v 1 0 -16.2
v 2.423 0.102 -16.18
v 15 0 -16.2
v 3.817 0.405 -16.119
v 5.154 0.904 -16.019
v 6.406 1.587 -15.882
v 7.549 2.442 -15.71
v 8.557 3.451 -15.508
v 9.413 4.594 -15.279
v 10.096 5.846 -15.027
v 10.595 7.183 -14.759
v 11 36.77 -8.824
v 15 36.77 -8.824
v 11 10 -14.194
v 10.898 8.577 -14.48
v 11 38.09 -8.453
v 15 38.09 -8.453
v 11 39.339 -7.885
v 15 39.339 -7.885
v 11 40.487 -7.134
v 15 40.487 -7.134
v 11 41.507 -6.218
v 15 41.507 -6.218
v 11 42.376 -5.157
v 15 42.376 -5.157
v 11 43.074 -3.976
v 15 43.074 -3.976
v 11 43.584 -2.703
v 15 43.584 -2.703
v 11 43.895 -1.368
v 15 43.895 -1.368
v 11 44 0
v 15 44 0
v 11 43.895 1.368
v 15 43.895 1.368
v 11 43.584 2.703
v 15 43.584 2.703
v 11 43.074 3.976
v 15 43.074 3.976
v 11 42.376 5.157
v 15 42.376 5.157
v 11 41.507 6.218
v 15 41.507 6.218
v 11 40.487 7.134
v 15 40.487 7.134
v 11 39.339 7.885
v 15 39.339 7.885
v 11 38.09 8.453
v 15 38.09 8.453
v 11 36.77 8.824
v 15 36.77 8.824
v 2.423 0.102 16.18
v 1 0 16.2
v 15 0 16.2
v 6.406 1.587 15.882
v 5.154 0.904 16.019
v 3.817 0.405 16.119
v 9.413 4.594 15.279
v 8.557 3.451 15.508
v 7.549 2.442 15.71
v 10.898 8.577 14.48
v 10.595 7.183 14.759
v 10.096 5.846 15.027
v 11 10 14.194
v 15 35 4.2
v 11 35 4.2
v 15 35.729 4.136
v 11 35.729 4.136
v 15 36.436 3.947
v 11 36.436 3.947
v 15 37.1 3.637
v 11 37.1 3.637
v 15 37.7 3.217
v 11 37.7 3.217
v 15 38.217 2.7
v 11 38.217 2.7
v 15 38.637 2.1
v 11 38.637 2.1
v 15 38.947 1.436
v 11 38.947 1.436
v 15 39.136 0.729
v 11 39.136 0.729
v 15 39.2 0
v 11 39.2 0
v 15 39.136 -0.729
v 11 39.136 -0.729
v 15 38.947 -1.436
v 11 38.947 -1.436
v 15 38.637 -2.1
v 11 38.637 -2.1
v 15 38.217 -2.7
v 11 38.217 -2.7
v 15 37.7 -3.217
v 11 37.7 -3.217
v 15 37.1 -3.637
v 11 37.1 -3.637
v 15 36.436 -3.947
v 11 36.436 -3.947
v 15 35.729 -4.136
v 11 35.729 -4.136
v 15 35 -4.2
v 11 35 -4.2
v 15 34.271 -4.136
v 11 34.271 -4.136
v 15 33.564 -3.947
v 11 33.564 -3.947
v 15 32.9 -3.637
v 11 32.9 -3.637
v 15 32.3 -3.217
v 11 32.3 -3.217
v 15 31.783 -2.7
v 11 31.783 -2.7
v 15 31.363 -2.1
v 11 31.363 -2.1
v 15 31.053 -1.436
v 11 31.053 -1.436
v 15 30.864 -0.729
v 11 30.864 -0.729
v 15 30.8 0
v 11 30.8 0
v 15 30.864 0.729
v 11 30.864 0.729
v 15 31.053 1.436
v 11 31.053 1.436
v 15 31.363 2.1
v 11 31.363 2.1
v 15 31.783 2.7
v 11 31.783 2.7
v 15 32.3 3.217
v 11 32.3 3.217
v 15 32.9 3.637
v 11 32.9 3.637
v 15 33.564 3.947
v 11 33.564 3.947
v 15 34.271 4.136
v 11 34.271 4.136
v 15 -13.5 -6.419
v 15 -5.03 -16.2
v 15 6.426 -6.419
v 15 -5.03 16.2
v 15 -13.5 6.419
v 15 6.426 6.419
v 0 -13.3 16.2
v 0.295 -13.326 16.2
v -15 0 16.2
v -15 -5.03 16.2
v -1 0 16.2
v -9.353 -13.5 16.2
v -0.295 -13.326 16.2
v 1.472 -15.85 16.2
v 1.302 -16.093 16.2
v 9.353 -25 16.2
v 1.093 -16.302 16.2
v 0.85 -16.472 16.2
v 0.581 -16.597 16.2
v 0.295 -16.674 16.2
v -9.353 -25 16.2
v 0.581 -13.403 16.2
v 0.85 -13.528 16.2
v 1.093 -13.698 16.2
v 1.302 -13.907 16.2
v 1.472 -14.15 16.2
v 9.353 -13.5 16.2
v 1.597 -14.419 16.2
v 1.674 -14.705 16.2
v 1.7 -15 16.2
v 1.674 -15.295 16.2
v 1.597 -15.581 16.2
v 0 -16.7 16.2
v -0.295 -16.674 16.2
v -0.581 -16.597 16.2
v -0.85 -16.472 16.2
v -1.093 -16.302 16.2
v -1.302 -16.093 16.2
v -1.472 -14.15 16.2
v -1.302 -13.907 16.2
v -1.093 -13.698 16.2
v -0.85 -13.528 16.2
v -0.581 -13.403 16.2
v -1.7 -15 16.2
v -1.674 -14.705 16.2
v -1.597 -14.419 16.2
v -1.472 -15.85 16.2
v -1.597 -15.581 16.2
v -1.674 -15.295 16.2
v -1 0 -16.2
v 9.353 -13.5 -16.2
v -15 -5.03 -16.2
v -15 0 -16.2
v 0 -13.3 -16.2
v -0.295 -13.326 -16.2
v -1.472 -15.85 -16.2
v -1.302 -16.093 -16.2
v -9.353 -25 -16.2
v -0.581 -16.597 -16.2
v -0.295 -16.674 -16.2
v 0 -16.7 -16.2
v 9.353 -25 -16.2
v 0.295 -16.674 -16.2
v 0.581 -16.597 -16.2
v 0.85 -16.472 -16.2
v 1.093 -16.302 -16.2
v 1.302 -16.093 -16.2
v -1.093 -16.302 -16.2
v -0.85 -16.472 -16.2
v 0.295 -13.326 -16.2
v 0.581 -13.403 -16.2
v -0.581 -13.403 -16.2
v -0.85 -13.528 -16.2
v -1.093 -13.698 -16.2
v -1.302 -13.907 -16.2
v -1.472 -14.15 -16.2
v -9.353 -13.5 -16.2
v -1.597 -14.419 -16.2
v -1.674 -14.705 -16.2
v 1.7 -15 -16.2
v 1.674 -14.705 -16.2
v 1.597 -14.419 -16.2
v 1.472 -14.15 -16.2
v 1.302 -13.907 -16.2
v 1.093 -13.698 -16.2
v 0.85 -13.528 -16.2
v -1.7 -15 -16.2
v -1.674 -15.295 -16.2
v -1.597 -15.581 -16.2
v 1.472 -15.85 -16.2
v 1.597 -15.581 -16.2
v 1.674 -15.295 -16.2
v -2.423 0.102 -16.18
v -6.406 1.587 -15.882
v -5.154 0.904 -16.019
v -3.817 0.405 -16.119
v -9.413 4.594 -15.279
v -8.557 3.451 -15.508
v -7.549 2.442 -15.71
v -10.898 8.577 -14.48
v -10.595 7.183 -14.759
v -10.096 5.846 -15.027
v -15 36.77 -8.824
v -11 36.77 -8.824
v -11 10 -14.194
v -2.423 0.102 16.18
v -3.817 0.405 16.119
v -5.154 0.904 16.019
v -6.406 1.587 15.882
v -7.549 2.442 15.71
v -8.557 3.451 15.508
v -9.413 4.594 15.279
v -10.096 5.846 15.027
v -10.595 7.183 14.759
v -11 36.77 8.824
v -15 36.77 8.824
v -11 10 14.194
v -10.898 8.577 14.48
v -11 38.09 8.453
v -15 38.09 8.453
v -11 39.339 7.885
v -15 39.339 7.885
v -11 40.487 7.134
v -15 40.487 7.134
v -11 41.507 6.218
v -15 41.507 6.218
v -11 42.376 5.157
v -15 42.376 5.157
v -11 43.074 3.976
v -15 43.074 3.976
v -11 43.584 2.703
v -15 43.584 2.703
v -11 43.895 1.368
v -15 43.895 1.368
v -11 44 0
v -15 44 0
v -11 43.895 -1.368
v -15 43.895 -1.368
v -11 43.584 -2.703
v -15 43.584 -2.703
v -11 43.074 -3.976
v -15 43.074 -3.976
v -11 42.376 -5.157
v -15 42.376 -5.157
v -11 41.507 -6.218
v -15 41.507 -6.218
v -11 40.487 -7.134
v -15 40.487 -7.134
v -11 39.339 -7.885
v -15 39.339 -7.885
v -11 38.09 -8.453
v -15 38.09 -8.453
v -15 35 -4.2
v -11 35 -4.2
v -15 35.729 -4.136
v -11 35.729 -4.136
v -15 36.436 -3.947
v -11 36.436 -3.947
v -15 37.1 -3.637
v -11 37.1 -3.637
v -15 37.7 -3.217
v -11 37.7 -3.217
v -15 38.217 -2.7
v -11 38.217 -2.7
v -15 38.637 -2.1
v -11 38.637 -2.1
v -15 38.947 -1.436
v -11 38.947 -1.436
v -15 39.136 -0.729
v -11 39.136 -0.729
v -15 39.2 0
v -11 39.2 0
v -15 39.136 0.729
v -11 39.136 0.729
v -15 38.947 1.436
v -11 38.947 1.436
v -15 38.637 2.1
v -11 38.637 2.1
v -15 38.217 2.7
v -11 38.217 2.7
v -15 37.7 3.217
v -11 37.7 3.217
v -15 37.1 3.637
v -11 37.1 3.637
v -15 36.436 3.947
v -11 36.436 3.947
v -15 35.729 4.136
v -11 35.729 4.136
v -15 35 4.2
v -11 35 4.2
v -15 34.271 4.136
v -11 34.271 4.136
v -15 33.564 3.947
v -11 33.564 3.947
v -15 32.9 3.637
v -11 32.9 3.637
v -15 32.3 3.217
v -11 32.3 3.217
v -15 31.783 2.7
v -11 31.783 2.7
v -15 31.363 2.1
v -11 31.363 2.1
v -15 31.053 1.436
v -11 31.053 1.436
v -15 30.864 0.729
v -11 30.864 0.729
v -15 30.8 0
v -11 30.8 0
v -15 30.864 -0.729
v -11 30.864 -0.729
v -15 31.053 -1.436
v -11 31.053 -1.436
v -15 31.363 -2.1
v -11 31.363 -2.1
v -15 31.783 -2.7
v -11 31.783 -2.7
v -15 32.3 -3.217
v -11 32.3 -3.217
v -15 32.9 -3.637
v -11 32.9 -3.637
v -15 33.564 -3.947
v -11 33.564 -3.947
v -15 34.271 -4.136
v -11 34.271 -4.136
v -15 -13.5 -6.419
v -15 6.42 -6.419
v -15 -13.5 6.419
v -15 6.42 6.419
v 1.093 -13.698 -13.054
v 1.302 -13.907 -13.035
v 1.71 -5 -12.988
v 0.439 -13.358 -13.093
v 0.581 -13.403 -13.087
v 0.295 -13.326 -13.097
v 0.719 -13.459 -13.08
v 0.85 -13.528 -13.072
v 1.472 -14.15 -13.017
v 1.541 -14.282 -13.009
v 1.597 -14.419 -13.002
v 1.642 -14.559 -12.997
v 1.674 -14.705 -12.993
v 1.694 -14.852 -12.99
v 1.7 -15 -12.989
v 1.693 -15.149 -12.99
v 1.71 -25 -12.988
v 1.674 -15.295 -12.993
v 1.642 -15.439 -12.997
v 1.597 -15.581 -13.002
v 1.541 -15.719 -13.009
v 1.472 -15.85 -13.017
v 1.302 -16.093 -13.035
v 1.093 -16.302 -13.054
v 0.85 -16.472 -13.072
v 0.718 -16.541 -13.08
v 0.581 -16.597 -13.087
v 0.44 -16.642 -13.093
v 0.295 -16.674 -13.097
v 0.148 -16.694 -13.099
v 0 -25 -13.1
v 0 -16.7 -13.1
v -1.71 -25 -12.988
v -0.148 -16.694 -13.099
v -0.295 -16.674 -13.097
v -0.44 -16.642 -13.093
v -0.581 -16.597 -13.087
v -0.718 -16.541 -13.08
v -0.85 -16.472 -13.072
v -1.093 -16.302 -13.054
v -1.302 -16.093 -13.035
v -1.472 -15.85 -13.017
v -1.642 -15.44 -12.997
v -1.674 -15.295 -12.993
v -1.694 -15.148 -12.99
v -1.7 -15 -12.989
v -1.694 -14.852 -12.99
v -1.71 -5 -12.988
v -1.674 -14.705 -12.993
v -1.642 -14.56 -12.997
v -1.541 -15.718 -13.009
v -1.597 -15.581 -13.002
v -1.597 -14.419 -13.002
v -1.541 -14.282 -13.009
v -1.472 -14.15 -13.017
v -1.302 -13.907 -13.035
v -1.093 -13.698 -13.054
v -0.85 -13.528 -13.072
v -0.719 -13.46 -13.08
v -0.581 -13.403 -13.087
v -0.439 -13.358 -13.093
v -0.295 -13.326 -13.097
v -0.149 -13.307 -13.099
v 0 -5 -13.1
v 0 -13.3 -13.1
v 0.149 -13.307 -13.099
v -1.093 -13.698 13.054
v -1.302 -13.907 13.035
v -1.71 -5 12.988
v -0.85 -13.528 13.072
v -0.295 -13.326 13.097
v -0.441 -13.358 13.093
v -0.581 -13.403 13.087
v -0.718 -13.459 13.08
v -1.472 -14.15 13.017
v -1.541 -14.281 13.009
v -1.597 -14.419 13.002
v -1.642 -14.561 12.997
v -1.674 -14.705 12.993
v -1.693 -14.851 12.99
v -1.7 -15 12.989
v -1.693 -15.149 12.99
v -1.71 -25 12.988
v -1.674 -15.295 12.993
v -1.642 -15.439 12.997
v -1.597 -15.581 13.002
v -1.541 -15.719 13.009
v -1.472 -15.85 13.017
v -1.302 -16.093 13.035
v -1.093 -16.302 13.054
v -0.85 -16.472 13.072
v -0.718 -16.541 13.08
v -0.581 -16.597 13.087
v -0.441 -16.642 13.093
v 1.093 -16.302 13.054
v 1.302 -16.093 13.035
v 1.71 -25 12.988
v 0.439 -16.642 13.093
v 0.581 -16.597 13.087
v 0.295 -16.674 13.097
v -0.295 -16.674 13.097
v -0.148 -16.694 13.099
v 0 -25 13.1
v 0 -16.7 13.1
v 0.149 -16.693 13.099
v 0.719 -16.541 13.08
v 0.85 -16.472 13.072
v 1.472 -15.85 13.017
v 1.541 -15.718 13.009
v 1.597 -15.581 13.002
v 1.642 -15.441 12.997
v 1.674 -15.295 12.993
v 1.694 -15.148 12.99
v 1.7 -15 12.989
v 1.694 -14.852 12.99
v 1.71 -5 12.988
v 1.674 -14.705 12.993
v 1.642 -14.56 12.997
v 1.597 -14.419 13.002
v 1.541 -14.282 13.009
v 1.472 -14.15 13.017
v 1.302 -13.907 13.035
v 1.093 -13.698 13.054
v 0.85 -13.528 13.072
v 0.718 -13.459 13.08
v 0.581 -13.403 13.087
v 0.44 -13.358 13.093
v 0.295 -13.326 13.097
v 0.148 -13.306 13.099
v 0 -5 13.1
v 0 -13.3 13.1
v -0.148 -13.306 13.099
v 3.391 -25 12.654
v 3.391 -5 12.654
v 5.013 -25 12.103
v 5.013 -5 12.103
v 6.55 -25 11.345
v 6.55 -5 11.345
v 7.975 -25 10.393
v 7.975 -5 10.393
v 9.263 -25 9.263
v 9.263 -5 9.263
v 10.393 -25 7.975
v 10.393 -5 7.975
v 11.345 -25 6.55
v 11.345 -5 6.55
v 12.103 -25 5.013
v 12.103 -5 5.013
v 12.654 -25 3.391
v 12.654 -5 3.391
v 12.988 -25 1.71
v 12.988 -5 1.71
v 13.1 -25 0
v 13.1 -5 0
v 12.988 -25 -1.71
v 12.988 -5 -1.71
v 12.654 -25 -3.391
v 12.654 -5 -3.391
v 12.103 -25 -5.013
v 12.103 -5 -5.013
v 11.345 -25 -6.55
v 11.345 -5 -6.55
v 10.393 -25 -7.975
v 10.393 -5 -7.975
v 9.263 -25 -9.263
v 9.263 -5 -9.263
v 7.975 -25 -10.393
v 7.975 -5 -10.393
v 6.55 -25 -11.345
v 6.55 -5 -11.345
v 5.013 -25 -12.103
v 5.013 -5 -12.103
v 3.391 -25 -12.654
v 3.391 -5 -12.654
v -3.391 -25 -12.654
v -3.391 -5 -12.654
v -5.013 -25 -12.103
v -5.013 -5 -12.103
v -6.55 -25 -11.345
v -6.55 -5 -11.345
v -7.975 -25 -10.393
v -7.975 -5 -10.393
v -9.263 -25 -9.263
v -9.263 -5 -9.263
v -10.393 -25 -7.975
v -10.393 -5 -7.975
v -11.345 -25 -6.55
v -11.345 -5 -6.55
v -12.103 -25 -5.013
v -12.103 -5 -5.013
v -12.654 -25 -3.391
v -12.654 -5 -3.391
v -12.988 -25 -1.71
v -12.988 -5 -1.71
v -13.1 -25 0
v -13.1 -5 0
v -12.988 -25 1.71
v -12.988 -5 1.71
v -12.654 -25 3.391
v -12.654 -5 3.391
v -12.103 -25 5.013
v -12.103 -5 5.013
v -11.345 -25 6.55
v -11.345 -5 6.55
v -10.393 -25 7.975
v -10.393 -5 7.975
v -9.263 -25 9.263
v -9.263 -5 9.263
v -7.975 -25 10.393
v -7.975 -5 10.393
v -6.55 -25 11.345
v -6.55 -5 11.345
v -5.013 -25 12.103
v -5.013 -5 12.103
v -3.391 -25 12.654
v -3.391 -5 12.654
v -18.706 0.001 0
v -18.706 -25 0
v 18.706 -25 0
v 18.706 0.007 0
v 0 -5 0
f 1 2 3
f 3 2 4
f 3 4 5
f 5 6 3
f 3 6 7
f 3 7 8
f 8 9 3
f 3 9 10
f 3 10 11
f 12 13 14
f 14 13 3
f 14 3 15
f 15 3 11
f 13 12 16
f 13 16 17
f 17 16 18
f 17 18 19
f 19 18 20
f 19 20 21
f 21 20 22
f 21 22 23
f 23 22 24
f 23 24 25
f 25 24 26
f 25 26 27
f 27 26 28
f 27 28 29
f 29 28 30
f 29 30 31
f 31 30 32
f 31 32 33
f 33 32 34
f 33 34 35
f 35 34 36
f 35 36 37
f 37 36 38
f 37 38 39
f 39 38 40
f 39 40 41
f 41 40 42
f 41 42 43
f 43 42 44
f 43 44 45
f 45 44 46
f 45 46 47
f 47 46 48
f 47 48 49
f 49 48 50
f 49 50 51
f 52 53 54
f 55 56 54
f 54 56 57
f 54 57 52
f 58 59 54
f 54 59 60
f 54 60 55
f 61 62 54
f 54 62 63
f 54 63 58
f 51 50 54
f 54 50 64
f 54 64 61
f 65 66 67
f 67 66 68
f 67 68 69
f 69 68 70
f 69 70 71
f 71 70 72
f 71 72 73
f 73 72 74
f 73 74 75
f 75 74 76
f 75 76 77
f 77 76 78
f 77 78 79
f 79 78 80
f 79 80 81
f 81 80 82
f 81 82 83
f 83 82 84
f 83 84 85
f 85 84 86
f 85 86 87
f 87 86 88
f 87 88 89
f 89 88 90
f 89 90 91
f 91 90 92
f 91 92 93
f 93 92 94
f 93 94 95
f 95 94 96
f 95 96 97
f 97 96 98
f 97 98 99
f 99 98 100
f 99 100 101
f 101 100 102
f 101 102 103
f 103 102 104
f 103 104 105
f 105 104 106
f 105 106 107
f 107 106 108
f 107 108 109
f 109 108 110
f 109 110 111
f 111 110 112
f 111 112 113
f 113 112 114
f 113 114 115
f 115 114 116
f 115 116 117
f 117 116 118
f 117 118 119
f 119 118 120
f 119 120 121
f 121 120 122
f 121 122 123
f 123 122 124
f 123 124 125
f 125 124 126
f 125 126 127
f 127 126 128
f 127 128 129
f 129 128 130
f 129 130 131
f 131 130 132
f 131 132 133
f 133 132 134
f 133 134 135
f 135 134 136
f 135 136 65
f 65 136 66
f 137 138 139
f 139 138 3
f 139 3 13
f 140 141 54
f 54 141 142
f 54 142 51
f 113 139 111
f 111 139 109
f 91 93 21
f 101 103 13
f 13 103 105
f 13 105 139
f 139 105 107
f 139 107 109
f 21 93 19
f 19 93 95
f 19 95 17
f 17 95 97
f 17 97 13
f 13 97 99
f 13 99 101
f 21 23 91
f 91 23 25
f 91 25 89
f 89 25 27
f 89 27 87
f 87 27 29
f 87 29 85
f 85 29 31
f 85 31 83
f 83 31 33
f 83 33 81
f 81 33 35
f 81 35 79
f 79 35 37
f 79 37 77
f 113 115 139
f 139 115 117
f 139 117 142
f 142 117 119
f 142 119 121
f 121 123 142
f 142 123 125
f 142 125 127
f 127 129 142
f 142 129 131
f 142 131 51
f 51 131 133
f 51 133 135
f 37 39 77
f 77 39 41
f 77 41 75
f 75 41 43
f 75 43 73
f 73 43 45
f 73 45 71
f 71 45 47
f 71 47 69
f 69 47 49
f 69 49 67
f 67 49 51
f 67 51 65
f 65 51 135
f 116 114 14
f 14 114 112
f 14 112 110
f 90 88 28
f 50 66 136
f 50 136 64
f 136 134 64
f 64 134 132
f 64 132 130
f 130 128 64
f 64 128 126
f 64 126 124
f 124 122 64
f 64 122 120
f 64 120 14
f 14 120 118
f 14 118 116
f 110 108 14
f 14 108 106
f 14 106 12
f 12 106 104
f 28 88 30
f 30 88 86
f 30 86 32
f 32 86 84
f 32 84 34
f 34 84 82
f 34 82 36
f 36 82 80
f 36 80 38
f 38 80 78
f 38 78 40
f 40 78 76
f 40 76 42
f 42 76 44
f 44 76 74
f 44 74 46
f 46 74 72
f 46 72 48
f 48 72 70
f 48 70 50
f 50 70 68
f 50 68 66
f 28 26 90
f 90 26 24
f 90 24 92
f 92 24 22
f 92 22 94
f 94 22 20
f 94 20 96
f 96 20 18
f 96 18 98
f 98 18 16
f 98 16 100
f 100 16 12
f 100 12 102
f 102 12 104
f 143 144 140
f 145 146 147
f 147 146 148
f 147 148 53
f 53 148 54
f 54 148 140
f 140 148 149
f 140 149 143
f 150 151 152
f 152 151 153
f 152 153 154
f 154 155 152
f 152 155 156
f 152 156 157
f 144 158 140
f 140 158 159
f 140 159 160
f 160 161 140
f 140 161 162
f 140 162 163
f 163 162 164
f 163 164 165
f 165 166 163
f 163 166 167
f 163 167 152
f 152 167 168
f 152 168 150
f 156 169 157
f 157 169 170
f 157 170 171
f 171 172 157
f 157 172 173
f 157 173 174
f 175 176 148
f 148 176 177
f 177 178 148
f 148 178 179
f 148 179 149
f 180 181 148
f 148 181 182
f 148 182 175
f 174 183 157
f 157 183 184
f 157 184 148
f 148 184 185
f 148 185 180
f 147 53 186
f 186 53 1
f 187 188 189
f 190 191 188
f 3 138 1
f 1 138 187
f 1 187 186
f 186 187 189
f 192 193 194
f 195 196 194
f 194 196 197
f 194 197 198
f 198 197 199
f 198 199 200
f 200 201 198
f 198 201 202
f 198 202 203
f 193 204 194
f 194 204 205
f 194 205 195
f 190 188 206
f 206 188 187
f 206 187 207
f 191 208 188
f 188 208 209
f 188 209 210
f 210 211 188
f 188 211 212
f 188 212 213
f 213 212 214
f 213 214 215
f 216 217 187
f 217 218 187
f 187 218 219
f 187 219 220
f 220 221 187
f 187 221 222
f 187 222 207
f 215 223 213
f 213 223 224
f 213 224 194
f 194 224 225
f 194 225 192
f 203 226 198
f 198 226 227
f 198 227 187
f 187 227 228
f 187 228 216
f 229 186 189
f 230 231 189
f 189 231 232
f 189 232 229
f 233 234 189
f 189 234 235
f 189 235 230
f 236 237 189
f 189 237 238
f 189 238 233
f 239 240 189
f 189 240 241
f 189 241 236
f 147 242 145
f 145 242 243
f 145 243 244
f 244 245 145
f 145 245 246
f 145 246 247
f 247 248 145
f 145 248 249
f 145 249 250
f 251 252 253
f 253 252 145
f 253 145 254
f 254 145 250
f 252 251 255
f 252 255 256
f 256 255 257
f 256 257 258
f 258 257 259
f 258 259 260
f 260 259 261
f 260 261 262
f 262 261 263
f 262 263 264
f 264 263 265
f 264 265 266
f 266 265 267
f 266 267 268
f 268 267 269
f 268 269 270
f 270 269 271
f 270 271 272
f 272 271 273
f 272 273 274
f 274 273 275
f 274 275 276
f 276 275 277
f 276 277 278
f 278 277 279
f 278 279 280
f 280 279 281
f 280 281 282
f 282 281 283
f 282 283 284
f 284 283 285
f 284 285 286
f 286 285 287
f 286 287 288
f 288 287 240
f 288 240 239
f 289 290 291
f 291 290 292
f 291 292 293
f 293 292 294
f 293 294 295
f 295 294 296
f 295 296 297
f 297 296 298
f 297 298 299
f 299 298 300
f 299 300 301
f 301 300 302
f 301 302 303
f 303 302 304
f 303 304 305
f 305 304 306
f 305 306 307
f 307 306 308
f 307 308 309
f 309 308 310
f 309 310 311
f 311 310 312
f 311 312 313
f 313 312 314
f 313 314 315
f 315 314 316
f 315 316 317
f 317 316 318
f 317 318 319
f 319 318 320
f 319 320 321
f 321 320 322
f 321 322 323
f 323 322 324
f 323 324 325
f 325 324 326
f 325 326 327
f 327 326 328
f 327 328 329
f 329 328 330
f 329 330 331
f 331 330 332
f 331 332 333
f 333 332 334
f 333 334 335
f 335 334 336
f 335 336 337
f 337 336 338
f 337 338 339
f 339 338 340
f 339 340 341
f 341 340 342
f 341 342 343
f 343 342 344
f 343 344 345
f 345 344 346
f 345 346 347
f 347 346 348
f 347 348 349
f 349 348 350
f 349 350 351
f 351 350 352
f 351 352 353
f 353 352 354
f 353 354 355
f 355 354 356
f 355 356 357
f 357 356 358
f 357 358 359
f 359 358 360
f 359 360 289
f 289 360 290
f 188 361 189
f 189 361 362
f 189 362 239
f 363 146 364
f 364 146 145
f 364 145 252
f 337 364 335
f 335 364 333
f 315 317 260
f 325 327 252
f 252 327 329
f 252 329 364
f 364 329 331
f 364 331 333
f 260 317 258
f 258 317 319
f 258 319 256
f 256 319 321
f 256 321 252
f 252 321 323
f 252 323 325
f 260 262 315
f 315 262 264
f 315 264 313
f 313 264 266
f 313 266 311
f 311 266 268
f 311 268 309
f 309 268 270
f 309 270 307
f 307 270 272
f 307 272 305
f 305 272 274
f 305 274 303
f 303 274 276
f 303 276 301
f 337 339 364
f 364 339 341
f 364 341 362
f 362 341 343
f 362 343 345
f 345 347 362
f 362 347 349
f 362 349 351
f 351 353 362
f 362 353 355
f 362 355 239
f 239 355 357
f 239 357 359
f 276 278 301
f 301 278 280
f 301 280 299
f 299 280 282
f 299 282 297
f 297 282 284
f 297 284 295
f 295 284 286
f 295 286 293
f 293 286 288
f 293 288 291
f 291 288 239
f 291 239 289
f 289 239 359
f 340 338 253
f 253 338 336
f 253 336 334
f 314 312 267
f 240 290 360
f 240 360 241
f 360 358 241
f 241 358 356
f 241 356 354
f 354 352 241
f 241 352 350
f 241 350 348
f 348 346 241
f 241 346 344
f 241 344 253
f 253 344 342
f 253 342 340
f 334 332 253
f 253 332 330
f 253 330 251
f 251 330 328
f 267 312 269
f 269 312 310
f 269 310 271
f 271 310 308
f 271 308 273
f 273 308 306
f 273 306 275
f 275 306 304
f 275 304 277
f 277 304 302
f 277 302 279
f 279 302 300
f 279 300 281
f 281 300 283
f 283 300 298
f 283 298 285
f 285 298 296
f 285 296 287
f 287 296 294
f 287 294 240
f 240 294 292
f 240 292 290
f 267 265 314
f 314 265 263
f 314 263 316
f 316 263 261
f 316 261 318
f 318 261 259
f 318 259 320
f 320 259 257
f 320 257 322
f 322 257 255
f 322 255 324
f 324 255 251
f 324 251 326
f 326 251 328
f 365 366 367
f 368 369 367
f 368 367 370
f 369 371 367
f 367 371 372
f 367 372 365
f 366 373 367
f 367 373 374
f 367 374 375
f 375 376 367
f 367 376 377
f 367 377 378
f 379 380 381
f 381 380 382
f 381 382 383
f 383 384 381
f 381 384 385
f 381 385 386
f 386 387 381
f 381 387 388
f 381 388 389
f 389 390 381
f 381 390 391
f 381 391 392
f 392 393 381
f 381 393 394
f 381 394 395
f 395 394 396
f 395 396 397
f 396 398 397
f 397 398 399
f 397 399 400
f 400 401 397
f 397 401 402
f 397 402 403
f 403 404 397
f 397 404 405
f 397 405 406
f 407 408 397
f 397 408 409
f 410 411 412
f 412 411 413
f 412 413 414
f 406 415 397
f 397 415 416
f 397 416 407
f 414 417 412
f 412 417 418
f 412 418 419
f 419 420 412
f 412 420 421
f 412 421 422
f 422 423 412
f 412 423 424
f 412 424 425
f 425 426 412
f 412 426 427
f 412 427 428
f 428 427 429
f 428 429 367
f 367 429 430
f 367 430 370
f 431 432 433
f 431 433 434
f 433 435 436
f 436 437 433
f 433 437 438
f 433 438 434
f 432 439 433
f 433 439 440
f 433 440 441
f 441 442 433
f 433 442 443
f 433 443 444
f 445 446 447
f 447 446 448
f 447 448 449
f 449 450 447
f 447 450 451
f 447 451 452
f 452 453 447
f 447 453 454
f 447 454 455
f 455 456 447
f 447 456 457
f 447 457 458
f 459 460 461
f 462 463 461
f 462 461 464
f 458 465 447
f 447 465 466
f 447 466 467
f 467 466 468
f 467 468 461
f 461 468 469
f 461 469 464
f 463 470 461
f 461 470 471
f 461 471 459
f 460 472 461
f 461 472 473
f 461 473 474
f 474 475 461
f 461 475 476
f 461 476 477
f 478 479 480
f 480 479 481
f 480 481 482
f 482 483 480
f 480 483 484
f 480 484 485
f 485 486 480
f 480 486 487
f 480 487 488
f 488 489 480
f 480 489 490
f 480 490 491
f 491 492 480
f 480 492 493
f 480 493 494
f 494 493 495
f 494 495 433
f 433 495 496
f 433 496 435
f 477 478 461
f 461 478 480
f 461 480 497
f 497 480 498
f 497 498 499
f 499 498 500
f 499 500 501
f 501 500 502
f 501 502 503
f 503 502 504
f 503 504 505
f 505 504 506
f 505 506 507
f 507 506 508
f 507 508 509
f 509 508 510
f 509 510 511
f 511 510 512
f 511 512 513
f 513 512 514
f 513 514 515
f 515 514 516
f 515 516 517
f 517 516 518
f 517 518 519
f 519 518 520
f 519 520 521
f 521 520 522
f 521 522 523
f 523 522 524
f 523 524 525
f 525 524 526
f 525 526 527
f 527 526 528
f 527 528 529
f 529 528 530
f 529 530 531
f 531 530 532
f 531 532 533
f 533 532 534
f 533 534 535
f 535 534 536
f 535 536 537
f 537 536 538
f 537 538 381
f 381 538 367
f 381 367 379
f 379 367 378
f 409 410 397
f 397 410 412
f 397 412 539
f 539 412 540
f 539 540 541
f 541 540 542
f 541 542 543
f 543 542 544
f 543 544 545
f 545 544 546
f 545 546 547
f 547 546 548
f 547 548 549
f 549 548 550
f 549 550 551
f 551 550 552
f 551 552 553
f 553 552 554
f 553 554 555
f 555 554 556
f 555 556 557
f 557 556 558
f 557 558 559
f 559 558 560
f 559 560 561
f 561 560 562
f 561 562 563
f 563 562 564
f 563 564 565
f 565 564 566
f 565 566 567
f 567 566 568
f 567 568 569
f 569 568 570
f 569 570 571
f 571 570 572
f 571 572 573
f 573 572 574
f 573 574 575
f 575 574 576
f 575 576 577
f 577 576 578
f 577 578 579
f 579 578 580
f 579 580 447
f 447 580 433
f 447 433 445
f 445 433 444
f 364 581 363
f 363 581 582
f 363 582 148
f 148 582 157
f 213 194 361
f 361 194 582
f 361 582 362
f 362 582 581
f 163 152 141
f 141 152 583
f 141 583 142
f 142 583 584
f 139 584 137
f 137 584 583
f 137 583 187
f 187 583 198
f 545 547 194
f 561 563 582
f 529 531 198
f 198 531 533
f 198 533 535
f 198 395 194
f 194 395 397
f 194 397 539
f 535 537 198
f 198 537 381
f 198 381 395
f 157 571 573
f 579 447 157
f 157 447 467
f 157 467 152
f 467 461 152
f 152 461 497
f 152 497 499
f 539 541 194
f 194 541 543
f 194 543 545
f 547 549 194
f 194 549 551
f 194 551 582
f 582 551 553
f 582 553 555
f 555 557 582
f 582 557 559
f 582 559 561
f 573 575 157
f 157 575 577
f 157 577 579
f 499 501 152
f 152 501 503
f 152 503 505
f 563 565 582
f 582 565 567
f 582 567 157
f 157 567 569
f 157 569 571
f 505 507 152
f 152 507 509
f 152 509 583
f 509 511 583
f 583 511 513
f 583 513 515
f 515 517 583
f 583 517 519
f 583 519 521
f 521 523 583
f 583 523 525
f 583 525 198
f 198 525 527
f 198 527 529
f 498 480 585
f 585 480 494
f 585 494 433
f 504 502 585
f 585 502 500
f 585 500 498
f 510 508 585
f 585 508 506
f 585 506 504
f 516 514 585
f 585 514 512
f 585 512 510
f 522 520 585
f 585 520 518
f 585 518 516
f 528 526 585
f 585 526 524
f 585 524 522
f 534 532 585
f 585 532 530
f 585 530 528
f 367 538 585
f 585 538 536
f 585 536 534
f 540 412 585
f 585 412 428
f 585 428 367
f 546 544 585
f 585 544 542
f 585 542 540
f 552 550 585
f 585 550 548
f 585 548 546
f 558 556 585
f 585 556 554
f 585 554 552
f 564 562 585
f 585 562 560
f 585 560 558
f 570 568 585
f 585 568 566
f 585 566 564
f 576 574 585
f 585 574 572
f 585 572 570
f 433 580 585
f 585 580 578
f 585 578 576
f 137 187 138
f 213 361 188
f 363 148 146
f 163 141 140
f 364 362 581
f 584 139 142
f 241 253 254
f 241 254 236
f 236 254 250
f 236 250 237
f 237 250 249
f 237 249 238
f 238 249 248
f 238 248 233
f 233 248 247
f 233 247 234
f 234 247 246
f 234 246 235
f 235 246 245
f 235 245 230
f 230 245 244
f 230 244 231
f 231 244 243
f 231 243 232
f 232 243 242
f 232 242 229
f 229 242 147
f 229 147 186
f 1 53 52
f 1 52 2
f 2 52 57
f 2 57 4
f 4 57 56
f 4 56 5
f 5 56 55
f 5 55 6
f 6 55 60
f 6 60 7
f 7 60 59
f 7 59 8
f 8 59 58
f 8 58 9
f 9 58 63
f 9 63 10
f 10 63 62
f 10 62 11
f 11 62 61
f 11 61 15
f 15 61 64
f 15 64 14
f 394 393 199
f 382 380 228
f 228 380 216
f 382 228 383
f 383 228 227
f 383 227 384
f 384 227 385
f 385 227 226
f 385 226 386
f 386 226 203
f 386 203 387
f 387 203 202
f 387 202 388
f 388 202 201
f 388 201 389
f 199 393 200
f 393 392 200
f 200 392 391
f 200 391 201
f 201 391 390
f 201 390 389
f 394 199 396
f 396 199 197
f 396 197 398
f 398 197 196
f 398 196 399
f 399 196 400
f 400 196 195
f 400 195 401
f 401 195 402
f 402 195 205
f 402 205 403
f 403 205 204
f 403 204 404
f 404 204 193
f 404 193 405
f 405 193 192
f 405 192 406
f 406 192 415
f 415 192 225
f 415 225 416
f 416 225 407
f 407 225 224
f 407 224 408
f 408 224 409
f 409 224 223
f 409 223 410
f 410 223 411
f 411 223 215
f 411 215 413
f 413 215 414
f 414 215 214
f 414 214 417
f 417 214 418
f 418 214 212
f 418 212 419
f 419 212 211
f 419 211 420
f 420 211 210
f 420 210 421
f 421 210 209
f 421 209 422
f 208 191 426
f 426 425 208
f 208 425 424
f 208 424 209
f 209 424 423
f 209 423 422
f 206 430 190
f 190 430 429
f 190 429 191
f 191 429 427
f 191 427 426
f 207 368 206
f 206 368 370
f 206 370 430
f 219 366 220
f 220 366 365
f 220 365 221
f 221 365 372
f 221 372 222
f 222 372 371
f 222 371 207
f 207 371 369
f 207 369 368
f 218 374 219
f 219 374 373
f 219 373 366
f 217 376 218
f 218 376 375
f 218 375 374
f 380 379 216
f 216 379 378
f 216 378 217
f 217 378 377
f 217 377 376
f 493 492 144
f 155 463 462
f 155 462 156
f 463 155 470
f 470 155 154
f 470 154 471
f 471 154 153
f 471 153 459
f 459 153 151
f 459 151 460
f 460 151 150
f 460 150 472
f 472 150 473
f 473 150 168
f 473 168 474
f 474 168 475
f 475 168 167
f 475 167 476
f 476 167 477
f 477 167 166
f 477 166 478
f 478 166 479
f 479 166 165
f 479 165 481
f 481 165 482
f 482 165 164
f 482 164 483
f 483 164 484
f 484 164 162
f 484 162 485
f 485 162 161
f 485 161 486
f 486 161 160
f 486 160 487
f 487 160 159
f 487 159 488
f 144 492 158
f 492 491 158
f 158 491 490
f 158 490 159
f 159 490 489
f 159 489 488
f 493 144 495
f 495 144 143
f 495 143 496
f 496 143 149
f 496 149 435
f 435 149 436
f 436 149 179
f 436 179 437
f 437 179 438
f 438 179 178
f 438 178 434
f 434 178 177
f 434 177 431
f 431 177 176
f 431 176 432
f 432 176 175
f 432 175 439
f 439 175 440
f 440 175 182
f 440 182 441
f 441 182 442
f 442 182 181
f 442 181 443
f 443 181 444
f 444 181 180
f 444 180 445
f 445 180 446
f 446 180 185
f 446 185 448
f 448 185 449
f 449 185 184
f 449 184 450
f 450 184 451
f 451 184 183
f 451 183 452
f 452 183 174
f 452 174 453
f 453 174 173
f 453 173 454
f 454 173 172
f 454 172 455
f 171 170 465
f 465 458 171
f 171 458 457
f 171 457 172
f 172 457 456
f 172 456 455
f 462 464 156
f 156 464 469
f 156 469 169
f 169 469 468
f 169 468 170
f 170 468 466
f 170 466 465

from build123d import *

# Parameters (mm, degrees)
SALIENTE_EXTRUIR1_START = 11
CROQUIS1_R              = 4.2
SALIENTE_EXTRUIR1_DEPTH = 4
SALIENTE_EXTRUIR2_START = -11
CROQUIS1_3_R            = 4.2
SALIENTE_EXTRUIR2_DEPTH = 4
CROQUIS2_R              = 13.1
SALIENTE_EXTRUIR3_DEPTH = 5
CROQUIS2_3_R            = 13.1
SALIENTE_EXTRUIR4_DEPTH = 25
CHAFL_N1_SIZE           = 8.5
CHAFL_N1_SIZE_2         = 4.907477288
CHAFL_N3_SIZE           = 6.42
CHAFL_N3_SIZE_2         = 3.706588728
CHAFL_N4_SIZE           = 6.425908496
CHAFL_N4_SIZE_2         = 3.71
REDONDEO2_R             = 10
CORTAR_EXTRUIR1_REACH   = 59.755
CROQUIS3_R              = 1.7


with BuildPart() as part:
    # Croquis1 → Saliente-Extruir1 (new body)
    with BuildSketch(Plane(origin=(0, 0, 0), x_dir=(0, 0, -1), z_dir=(1, 0, 0)).offset(SALIENTE_EXTRUIR1_START)):
        with BuildLine():
            Line((-16.2, 0), (16.2, 0))
            Line((16.2, 0), (8.824220118, 36.770067598))
            ThreePointArc((8.824220118, 36.770067598), (0, 44), (-8.824220118, 36.770067598))
            Line((-8.824220118, 36.770067598), (-16.2, 0))
        make_face()
        with Locations((0, 35)):
            Circle(CROQUIS1_R, mode=Mode.SUBTRACT)
    extrude(amount=SALIENTE_EXTRUIR1_DEPTH)



with BuildPart() as body_2:
    # Croquis1<3> → Saliente-Extruir2 (new body)
    with BuildSketch(Plane(origin=(0, 0, 0), x_dir=(0, 0, -1), z_dir=(1, 0, 0)).offset(SALIENTE_EXTRUIR2_START)):
        with BuildLine():
            Line((-16.2, 0), (16.2, 0))
            Line((16.2, 0), (8.824220118, 36.770067598))
            ThreePointArc((8.824220118, 36.770067598), (0, 44), (-8.824220118, 36.770067598))
            Line((-8.824220118, 36.770067598), (-16.2, 0))
        make_face()
        with Locations((0, 35)):
            Circle(CROQUIS1_3_R, mode=Mode.SUBTRACT)
    extrude(amount=-SALIENTE_EXTRUIR2_DEPTH)


with BuildPart() as part_1:
    add(part.part)

    add(body_2.part)  # Saliente-Extruir3 merges body 2
    # Croquis2 → Saliente-Extruir3 (add)
    with BuildSketch(Plane(origin=(0, 0, 0), x_dir=(1, 0, 0), z_dir=(0, 1, 0))):
        Polygon((-9.353074361, -16.2), (-15, -6.419237886), (-15, -16.2), align=None)
        Polygon((15, -16.2), (15, -6.419237886), (9.353074361, -16.2), align=None)
        Polygon((15, 16.2), (9.353074361, 16.2), (15, 6.419237886), align=None)
        Polygon((-15, 6.419237886), (-9.353074361, 16.2), (-15, 16.2), align=None)
        with Locations(Location((0, 0, 0), (0, 0, 270))):
            Circle(CROQUIS2_R)
    extrude(amount=-SALIENTE_EXTRUIR3_DEPTH)

    # Croquis2<3> → Saliente-Extruir4 (add)
    with BuildSketch(Plane(origin=(0, 0, 0), x_dir=(1, 0, 0), z_dir=(0, 1, 0))):
        Polygon((9.353074361, -16.2), (18.706148722, 0), (9.353074361, 16.2), (-9.353074361, 16.2), (-18.706148722, 0), (-9.353074361, -16.2), align=None)
        with Locations(Location((0, 0, 0), (0, 0, 270))):
            Circle(CROQUIS2_3_R, mode=Mode.SUBTRACT)
    extrude(amount=-SALIENTE_EXTRUIR4_DEPTH)

    # Chaflán1
    # the kernel refuses this chamfer: 8.5, 4.907477288 mm, written as the material it adds along each edge
    with BuildSketch(Plane(origin=(-1.642040096, -5, -35.244096875), x_dir=(-0.01673746999358639, -0.9998132206222078, 0.00966338280635039), z_dir=(0.5000000000000002, 0, 0.8660254037844386))) as chafl_n1_piece_1_section:
        Polygon((CHAFL_N1_SIZE * 0.999813220622, CHAFL_N1_SIZE * 0.0193267656127), (-CHAFL_N1_SIZE_2 * 0.0193267656131, CHAFL_N1_SIZE_2 * 0.999813220645), (0, 0), align=None)
    chafl_n1_piece_1 = extrude(amount=55.274309107, mode=Mode.PRIVATE)
    chafl_n1_piece_1 = split(chafl_n1_piece_1, bisect_by=Plane(origin=(12.808321649, -8.299879968, -16.2), z_dir=(0, 0, 1)), keep=Keep.TOP, mode=Mode.PRIVATE)
    chafl_n1_piece_1 = split(chafl_n1_piece_1, bisect_by=Plane(origin=(15, -8.299879968, -12.403901743), z_dir=(-1, 0, 0)), keep=Keep.TOP, mode=Mode.PRIVATE)
    add(chafl_n1_piece_1)
    with BuildSketch(Plane(origin=(-25.995114457, -5, 12.624858989), x_dir=(-0.8645728572665671, 0.057893862402670776, -0.4991613718768959), z_dir=(0.49999999999999956, 0, -0.8660254037844389))) as chafl_n1_piece_2_section:
        Polygon((CHAFL_N1_SIZE_2 * 0.998322743777, -CHAFL_N1_SIZE_2 * 0.057893862404), (-CHAFL_N1_SIZE * 0.0578938624027, -CHAFL_N1_SIZE * 0.998322743754), (0, 0), align=None)
    chafl_n1_piece_2 = extrude(amount=55.274309107, mode=Mode.PRIVATE)
    chafl_n1_piece_2 = split(chafl_n1_piece_2, bisect_by=Plane(origin=(-15, -8.299879968, -12.403901743), z_dir=(1, 0, 0)), keep=Keep.TOP, mode=Mode.PRIVATE)
    chafl_n1_piece_2 = split(chafl_n1_piece_2, bisect_by=Plane(origin=(-12.808321649, -8.299879968, -16.2), z_dir=(0, 0, 1)), keep=Keep.TOP, mode=Mode.PRIVATE)
    add(chafl_n1_piece_2)
    with BuildSketch(Plane(origin=(1.642040096, -5, 35.244096875), x_dir=(0.016737469993586364, -0.9998132206222078, -0.00966338280635038), z_dir=(-0.5000000000000004, 0, -0.8660254037844385))) as chafl_n1_piece_3_section:
        Polygon((CHAFL_N1_SIZE * 0.999813220622, CHAFL_N1_SIZE * 0.0193267656127), (-CHAFL_N1_SIZE_2 * 0.0193267656131, CHAFL_N1_SIZE_2 * 0.999813220645), (0, 0), align=None)
    chafl_n1_piece_3 = extrude(amount=55.274309107, mode=Mode.PRIVATE)
    chafl_n1_piece_3 = split(chafl_n1_piece_3, bisect_by=Plane(origin=(-15, -8.299879968, 12.403901743), z_dir=(1, 0, 0)), keep=Keep.TOP, mode=Mode.PRIVATE)
    chafl_n1_piece_3 = split(chafl_n1_piece_3, bisect_by=Plane(origin=(-12.808321649, -8.299879968, 16.2), z_dir=(0, 0, -1)), keep=Keep.TOP, mode=Mode.PRIVATE)
    add(chafl_n1_piece_3)
    with BuildSketch(Plane(origin=(25.995114457, -5, -12.624858989), x_dir=(-0.016737469993586725, -0.9998132206222078, -0.009663382806350568), z_dir=(-0.4999999999999995, 0, 0.8660254037844389))) as chafl_n1_piece_4_section:
        Polygon((CHAFL_N1_SIZE * 0.999813220622, CHAFL_N1_SIZE * 0.0193267656127), (-CHAFL_N1_SIZE_2 * 0.0193267656131, CHAFL_N1_SIZE_2 * 0.999813220645), (0, 0), align=None)
    chafl_n1_piece_4 = extrude(amount=55.274309107, mode=Mode.PRIVATE)
    chafl_n1_piece_4 = split(chafl_n1_piece_4, bisect_by=Plane(origin=(15, -8.299879968, 12.403901743), z_dir=(-1, 0, 0)), keep=Keep.TOP, mode=Mode.PRIVATE)
    chafl_n1_piece_4 = split(chafl_n1_piece_4, bisect_by=Plane(origin=(12.808321649, -8.299879968, 16.2), z_dir=(0, 0, -1)), keep=Keep.TOP, mode=Mode.PRIVATE)
    add(chafl_n1_piece_4)

    # Chaflán3
    # the kernel refuses this chamfer: 6.42, 3.706588728 mm, written as the material it adds along each edge
    with BuildSketch(Plane(origin=(-15, 0, 23.028328431), x_dir=(0.019326765612700848, 0.9998132206222079, 0), z_dir=(0, 0, -1))) as chafl_n3_piece_1_section:
        Polygon((CHAFL_N3_SIZE * 0.999813220622, -CHAFL_N3_SIZE * 0.0193267656127), (-CHAFL_N3_SIZE_2 * 0.0193267656137, -CHAFL_N3_SIZE_2 * 0.999813220675), (0, 0), align=None)
    chafl_n3_piece_1 = extrude(amount=46.056656863, mode=Mode.PRIVATE)
    chafl_n3_piece_1 = split(chafl_n3_piece_1, bisect_by=Plane(origin=(-17.986677842, 2.490730723, 1.246160118), z_dir=(0.8660254037844385, 0, -0.5000000000000004)), keep=Keep.TOP, mode=Mode.PRIVATE)
    chafl_n3_piece_1 = split(chafl_n3_piece_1, bisect_by=Plane(origin=(-17.986677842, 2.490730723, -1.246160118), z_dir=(0.8660254037844389, 0, 0.4999999999999996)), keep=Keep.TOP, mode=Mode.PRIVATE)
    add(chafl_n3_piece_1)

    # Chaflán4
    # the kernel refuses this chamfer: 6.425908496, 3.71 mm, written as the material it adds along each edge
    with BuildSketch(Plane(origin=(15, 0, 23.043614217), x_dir=(-0.019326765612700598, 0.9998132206222079, 0), z_dir=(0, 0, -1))) as chafl_n4_piece_1_section:
        Polygon((CHAFL_N4_SIZE * 0.999813220635, CHAFL_N4_SIZE * 0.0193267656129), (-CHAFL_N4_SIZE_2 * 0.0193267656127, CHAFL_N4_SIZE_2 * 0.999813220622), (0, 0), align=None)
    chafl_n4_piece_1 = extrude(amount=46.087228435, mode=Mode.PRIVATE)
    chafl_n4_piece_1 = split(chafl_n4_piece_1, bisect_by=Plane(origin=(17.986748418, 2.493472797, -1.246037877), z_dir=(-0.8660254037844386, 0, 0.5000000000000003)), keep=Keep.TOP, mode=Mode.PRIVATE)
    chafl_n4_piece_1 = split(chafl_n4_piece_1, bisect_by=Plane(origin=(17.986748418, 2.493472797, 1.246037877), z_dir=(-0.8660254037844389, 0, -0.4999999999999996)), keep=Keep.TOP, mode=Mode.PRIVATE)
    add(chafl_n4_piece_1)

    # Redondeo2
    redondeo2_edges = [part_1.edges().sort_by_distance(p)[0] for p in [
        (-11, 0, 0),
        (11, 0, 0),
    ]]
    fillet(redondeo2_edges, radius=REDONDEO2_R)

    # Cortar-Extruir1: up to this face of the body (flat: up to its plane)
    cortar_extruir1_end = Plane(part_1.part.faces().sort_by_distance((0, -11.120511865, -16.2))[0])
    # Croquis3 → Cortar-Extruir1 (cut, up to the picked face)
    with BuildSketch(Plane.XY.offset(16.2), mode=Mode.PRIVATE) as cortar_extruir1_sk1:
        with Locations((0, -15)):
            Circle(CROQUIS3_R)
    cortar_extruir1_tool1 = split(extrude(cortar_extruir1_sk1.sketch, amount=-CORTAR_EXTRUIR1_REACH, mode=Mode.PRIVATE), bisect_by=cortar_extruir1_end, keep=Keep.BOTH, mode=Mode.PRIVATE)
    add(cortar_extruir1_tool1.solids().sort_by(Axis((0, -15, 16.2), (0, 0, -1)))[0], mode=Mode.SUBTRACT)


solid = part_1.part
